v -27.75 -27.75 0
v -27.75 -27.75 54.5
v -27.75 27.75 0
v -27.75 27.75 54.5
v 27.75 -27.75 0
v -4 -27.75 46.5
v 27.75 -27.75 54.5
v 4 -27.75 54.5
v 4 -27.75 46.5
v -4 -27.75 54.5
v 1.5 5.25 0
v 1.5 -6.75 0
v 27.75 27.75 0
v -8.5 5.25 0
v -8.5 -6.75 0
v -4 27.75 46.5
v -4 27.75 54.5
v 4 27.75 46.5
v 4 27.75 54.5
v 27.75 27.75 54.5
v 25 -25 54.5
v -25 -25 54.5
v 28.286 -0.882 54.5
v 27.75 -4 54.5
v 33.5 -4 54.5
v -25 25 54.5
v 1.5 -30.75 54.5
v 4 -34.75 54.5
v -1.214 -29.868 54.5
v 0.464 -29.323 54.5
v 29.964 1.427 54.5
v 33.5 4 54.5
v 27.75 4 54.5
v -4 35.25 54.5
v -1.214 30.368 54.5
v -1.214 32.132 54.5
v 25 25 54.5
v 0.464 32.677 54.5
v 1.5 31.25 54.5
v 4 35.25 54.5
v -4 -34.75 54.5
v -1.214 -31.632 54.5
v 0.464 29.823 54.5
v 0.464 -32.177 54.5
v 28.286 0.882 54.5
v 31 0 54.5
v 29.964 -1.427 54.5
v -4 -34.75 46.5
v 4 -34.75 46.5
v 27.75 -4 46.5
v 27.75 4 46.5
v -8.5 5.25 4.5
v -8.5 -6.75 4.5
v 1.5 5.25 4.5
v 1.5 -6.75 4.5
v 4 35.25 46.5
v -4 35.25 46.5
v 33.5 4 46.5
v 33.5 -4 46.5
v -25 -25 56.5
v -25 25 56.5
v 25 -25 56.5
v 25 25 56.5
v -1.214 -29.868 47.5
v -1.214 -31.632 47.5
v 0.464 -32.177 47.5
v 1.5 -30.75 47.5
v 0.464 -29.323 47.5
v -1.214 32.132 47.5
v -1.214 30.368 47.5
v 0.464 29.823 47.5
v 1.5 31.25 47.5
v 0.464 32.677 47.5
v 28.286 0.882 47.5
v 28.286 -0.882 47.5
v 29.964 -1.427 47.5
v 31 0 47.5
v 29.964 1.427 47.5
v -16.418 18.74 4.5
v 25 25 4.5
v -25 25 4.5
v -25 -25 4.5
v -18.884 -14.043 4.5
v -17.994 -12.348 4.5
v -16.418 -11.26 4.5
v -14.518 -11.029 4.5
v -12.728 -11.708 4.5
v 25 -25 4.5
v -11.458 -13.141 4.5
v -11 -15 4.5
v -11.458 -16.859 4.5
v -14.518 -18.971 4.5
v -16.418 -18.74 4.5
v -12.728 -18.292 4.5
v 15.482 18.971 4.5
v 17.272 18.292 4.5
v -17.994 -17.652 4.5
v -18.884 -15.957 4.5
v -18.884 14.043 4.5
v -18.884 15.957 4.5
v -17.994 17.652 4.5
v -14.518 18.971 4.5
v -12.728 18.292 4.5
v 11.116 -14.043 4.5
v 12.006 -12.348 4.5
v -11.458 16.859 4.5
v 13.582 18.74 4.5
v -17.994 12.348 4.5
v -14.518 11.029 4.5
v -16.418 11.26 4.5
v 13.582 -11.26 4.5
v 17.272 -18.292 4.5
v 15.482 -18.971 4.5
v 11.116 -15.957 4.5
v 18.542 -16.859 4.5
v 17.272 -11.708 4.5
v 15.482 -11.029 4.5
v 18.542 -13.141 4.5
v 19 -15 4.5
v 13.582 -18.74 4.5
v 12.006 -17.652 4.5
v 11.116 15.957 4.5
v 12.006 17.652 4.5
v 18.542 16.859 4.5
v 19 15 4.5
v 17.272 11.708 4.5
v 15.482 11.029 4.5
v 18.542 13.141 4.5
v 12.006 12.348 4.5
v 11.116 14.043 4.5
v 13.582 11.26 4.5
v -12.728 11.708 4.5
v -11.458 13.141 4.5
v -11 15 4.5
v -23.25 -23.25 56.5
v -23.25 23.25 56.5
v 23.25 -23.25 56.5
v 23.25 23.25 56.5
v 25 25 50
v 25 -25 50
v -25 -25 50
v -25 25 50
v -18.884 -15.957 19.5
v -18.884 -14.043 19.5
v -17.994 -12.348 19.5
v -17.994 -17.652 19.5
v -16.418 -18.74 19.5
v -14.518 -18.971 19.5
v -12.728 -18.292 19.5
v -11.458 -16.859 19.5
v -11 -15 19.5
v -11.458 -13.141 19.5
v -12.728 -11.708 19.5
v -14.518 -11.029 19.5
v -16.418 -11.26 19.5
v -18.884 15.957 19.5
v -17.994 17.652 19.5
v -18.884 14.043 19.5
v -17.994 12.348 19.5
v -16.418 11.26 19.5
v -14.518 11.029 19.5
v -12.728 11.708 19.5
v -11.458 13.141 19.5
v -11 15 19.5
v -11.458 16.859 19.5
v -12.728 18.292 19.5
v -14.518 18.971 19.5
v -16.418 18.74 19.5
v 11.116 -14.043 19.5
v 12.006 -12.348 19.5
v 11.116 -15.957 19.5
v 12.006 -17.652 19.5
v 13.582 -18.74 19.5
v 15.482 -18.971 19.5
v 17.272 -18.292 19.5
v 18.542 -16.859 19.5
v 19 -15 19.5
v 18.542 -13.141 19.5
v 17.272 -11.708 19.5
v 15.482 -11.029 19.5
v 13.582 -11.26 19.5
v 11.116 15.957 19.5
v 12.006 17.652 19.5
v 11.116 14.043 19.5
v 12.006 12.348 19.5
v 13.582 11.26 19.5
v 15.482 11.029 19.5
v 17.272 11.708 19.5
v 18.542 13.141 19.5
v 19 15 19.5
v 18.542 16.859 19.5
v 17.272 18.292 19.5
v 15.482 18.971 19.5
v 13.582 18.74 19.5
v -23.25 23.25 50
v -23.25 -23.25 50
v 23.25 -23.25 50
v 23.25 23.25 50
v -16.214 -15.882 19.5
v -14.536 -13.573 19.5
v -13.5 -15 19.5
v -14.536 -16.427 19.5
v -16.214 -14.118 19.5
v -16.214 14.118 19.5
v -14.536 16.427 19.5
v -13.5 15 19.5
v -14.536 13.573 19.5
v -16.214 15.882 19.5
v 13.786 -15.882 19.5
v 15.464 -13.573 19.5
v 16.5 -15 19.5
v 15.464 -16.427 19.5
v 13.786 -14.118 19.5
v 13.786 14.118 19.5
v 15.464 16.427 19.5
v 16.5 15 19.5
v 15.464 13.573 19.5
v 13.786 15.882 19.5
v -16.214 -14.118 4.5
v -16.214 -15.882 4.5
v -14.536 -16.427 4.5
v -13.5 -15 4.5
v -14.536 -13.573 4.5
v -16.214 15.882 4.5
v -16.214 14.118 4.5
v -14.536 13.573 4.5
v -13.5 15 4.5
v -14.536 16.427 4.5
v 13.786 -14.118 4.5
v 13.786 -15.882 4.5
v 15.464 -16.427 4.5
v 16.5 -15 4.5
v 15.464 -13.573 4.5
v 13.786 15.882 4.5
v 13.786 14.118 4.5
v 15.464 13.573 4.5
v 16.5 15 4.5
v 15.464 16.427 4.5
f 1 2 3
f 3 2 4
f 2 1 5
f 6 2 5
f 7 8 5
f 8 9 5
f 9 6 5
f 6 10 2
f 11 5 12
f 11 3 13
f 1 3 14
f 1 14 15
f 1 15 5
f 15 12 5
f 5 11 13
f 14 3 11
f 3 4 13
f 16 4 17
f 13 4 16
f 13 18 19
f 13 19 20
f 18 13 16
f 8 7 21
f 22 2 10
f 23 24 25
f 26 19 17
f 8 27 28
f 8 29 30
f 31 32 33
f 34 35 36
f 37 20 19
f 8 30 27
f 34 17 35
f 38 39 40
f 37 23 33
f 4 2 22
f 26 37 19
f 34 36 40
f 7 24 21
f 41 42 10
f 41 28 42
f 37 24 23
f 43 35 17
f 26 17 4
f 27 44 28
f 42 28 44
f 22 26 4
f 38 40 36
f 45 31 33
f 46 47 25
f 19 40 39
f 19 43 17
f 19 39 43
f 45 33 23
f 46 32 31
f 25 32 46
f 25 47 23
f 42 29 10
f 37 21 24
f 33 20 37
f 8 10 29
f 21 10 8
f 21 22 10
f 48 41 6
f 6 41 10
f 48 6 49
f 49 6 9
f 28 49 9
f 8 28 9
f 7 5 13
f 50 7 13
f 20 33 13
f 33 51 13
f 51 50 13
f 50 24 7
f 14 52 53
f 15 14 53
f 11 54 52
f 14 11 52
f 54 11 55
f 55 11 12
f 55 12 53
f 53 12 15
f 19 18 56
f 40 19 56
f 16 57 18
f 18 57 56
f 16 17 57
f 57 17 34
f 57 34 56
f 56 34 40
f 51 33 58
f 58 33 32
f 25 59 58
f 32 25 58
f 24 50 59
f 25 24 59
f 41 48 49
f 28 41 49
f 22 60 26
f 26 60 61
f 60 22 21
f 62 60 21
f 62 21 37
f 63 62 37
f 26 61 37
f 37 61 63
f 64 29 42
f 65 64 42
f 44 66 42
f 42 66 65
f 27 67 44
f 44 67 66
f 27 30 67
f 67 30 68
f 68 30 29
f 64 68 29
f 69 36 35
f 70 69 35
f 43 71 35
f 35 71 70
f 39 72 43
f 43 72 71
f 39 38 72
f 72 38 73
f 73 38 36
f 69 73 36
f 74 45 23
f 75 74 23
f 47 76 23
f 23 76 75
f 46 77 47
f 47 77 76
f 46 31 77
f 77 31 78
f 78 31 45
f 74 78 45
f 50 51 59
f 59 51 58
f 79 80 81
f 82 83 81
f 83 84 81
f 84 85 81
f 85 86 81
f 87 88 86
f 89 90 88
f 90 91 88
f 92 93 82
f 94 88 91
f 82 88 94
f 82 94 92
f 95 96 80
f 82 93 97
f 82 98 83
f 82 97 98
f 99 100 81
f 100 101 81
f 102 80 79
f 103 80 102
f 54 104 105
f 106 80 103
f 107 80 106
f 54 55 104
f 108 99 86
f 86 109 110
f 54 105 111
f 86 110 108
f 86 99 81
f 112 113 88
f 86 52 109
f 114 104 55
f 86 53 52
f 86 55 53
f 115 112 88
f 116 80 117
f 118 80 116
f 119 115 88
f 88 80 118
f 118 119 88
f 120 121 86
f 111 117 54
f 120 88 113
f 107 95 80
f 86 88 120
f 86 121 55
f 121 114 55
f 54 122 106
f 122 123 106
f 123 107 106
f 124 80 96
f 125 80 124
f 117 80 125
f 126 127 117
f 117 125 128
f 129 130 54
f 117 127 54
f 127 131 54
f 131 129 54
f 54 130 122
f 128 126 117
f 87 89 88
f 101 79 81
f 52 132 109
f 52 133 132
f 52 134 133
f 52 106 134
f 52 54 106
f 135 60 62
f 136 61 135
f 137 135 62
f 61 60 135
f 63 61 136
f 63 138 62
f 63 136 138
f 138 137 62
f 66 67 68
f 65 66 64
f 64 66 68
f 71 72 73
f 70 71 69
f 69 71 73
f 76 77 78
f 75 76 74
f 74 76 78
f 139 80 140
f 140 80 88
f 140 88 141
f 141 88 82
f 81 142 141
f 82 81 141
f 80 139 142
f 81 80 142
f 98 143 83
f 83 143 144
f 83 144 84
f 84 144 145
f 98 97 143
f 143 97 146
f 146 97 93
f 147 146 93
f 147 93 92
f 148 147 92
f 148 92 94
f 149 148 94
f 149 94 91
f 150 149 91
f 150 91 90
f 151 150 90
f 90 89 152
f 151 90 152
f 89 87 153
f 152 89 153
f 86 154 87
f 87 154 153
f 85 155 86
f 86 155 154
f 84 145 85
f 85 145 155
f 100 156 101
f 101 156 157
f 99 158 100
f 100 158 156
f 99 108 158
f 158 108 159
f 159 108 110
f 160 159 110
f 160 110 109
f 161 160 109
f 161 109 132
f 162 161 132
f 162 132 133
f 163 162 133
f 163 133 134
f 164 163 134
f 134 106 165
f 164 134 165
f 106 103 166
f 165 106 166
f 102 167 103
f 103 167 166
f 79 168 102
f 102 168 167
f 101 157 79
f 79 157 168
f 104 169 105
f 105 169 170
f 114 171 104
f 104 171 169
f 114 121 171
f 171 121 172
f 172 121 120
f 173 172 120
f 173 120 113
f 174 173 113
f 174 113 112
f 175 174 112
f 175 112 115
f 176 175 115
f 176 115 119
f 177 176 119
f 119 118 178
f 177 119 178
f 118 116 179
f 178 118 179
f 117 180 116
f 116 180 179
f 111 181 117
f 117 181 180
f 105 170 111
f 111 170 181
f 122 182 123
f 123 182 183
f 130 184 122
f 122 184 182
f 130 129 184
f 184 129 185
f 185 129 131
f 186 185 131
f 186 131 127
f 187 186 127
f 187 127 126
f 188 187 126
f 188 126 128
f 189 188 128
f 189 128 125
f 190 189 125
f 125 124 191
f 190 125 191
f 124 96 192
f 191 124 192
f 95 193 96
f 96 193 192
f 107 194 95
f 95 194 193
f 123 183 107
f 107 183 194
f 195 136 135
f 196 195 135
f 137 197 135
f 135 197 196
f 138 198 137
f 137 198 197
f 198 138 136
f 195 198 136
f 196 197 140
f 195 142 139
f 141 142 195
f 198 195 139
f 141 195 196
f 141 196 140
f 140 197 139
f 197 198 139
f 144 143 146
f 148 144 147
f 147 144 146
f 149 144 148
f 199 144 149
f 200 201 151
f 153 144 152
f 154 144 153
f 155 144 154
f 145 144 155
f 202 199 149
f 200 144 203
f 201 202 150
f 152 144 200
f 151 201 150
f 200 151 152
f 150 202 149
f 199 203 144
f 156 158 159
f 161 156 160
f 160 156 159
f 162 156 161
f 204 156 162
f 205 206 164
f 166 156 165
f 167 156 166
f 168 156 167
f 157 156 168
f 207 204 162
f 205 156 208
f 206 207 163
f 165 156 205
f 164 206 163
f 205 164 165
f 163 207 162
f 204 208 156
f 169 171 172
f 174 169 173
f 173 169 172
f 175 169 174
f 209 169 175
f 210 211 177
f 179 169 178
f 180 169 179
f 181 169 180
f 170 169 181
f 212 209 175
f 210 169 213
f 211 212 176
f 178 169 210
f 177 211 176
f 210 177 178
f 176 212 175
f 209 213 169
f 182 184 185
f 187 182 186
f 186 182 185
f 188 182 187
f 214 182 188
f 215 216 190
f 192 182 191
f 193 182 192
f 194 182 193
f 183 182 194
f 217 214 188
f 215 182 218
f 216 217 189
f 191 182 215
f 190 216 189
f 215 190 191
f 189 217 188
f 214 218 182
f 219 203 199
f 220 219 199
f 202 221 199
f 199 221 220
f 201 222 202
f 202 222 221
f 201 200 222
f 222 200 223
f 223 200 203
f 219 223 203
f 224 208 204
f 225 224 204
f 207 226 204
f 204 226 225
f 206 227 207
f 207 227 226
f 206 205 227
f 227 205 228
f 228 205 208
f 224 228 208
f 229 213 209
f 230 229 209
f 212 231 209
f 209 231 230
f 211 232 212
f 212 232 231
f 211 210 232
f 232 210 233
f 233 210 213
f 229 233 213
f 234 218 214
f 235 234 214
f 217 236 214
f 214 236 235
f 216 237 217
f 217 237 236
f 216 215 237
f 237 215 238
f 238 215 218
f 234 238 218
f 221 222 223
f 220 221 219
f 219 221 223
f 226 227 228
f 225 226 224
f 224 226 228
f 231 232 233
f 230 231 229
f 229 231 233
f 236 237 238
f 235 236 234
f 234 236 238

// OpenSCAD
pared=4.5;
diffLado = 8;
fibOpPlug = 12.75;
frenteH = 50+pared;
diffW = 51;
torHemW=8;
fibW=9.5;
torHemOffset = (diffW/2)-
				  (torHemW/2);



difference(){
translate( [
				-((diffW+pared)/2),
				-((diffW+pared)/2),
				0
			] )
carcaza();

translate([-17/2,-13.5/2,-0.1])
cube([10,12,7]);

}



portaTornillos();

translate([0,0,50])

difference(){
camCejaArea();
translate([
-((diffW-pared)/2),
-((diffW-pared)/2),
-0.1
])
cube([
		(diffW-pared),
		(diffW-pared),
		10
	]);
}





module camCejaArea(){
	translate([
				-(diffW+pared-1)/2,
				-(diffW+pared-1)/2,
				0
				])
	cube([
			(diffW+pared-1),
			(diffW+pared-1),
			pared
		  ]);
	translate([
				-(diffW-1)/2,
				-(diffW-1)/2,
				0
				])
	cube([
			(diffW-1),
			(diffW-1),
			pared+2
		  ]);
}



module portaTornillos(){

translate([-15,-15,0])
tornillo();
translate([-15,15,0])
tornillo();
translate([15,-15,0])
tornillo();
translate([15,15,0])
tornillo();

}


module tornillo(){

difference(){	
cylinder(r=4,15+pared);
translate([0,0,pared])
cylinder(r=3/2,15+0.1);
}

}






module carcaza(){
difference(){
//Area
frenteArea();
//Hueco
translate([(pared/2)+.5,(pared/2)+.5,pared])
cube([diffW-1,diffW-1,frenteH]);

}
}


module frenteArea(){
//Cuadro
cube([
		diffW+pared,
		diffW+pared,
		frenteH
	]);
//Tornillos hembra
translate([
				(diffW/2)+(pared/2),
				-(torHemW/2)+1,
				frenteH-torHemW])
tornHemBase();

translate([
				(diffW/2)+(pared/2),
				(diffW+(2*pared)-1),
				frenteH-torHemW])
tornHemBase();

//translate([
//				-(torHemW/2)+1,
//				(diffW/2)+(pared/2),
//				frenteH-torHemW])
//tornHemBase();
translate([
				diffW+(torHemW/2)+(pared/2),
				(diffW/2)+(pared/2),
				frenteH-torHemW])
tornHemBase();



}



module plugBase(){
difference(){
cylinder(r=15/2,fibOpPlug);
translate([0,0,-0.1])
cylinder(r=fibW/2,fibOpPlug+0.2);

}
}

module tornHemBase(){
difference(){
translate([-torHemW/2,-torHemW/2,0])
cube([torHemW,torHemW,torHemW]);
translate([0,0,1])
cylinder(r=3/2,torHemW+1);

}
}
